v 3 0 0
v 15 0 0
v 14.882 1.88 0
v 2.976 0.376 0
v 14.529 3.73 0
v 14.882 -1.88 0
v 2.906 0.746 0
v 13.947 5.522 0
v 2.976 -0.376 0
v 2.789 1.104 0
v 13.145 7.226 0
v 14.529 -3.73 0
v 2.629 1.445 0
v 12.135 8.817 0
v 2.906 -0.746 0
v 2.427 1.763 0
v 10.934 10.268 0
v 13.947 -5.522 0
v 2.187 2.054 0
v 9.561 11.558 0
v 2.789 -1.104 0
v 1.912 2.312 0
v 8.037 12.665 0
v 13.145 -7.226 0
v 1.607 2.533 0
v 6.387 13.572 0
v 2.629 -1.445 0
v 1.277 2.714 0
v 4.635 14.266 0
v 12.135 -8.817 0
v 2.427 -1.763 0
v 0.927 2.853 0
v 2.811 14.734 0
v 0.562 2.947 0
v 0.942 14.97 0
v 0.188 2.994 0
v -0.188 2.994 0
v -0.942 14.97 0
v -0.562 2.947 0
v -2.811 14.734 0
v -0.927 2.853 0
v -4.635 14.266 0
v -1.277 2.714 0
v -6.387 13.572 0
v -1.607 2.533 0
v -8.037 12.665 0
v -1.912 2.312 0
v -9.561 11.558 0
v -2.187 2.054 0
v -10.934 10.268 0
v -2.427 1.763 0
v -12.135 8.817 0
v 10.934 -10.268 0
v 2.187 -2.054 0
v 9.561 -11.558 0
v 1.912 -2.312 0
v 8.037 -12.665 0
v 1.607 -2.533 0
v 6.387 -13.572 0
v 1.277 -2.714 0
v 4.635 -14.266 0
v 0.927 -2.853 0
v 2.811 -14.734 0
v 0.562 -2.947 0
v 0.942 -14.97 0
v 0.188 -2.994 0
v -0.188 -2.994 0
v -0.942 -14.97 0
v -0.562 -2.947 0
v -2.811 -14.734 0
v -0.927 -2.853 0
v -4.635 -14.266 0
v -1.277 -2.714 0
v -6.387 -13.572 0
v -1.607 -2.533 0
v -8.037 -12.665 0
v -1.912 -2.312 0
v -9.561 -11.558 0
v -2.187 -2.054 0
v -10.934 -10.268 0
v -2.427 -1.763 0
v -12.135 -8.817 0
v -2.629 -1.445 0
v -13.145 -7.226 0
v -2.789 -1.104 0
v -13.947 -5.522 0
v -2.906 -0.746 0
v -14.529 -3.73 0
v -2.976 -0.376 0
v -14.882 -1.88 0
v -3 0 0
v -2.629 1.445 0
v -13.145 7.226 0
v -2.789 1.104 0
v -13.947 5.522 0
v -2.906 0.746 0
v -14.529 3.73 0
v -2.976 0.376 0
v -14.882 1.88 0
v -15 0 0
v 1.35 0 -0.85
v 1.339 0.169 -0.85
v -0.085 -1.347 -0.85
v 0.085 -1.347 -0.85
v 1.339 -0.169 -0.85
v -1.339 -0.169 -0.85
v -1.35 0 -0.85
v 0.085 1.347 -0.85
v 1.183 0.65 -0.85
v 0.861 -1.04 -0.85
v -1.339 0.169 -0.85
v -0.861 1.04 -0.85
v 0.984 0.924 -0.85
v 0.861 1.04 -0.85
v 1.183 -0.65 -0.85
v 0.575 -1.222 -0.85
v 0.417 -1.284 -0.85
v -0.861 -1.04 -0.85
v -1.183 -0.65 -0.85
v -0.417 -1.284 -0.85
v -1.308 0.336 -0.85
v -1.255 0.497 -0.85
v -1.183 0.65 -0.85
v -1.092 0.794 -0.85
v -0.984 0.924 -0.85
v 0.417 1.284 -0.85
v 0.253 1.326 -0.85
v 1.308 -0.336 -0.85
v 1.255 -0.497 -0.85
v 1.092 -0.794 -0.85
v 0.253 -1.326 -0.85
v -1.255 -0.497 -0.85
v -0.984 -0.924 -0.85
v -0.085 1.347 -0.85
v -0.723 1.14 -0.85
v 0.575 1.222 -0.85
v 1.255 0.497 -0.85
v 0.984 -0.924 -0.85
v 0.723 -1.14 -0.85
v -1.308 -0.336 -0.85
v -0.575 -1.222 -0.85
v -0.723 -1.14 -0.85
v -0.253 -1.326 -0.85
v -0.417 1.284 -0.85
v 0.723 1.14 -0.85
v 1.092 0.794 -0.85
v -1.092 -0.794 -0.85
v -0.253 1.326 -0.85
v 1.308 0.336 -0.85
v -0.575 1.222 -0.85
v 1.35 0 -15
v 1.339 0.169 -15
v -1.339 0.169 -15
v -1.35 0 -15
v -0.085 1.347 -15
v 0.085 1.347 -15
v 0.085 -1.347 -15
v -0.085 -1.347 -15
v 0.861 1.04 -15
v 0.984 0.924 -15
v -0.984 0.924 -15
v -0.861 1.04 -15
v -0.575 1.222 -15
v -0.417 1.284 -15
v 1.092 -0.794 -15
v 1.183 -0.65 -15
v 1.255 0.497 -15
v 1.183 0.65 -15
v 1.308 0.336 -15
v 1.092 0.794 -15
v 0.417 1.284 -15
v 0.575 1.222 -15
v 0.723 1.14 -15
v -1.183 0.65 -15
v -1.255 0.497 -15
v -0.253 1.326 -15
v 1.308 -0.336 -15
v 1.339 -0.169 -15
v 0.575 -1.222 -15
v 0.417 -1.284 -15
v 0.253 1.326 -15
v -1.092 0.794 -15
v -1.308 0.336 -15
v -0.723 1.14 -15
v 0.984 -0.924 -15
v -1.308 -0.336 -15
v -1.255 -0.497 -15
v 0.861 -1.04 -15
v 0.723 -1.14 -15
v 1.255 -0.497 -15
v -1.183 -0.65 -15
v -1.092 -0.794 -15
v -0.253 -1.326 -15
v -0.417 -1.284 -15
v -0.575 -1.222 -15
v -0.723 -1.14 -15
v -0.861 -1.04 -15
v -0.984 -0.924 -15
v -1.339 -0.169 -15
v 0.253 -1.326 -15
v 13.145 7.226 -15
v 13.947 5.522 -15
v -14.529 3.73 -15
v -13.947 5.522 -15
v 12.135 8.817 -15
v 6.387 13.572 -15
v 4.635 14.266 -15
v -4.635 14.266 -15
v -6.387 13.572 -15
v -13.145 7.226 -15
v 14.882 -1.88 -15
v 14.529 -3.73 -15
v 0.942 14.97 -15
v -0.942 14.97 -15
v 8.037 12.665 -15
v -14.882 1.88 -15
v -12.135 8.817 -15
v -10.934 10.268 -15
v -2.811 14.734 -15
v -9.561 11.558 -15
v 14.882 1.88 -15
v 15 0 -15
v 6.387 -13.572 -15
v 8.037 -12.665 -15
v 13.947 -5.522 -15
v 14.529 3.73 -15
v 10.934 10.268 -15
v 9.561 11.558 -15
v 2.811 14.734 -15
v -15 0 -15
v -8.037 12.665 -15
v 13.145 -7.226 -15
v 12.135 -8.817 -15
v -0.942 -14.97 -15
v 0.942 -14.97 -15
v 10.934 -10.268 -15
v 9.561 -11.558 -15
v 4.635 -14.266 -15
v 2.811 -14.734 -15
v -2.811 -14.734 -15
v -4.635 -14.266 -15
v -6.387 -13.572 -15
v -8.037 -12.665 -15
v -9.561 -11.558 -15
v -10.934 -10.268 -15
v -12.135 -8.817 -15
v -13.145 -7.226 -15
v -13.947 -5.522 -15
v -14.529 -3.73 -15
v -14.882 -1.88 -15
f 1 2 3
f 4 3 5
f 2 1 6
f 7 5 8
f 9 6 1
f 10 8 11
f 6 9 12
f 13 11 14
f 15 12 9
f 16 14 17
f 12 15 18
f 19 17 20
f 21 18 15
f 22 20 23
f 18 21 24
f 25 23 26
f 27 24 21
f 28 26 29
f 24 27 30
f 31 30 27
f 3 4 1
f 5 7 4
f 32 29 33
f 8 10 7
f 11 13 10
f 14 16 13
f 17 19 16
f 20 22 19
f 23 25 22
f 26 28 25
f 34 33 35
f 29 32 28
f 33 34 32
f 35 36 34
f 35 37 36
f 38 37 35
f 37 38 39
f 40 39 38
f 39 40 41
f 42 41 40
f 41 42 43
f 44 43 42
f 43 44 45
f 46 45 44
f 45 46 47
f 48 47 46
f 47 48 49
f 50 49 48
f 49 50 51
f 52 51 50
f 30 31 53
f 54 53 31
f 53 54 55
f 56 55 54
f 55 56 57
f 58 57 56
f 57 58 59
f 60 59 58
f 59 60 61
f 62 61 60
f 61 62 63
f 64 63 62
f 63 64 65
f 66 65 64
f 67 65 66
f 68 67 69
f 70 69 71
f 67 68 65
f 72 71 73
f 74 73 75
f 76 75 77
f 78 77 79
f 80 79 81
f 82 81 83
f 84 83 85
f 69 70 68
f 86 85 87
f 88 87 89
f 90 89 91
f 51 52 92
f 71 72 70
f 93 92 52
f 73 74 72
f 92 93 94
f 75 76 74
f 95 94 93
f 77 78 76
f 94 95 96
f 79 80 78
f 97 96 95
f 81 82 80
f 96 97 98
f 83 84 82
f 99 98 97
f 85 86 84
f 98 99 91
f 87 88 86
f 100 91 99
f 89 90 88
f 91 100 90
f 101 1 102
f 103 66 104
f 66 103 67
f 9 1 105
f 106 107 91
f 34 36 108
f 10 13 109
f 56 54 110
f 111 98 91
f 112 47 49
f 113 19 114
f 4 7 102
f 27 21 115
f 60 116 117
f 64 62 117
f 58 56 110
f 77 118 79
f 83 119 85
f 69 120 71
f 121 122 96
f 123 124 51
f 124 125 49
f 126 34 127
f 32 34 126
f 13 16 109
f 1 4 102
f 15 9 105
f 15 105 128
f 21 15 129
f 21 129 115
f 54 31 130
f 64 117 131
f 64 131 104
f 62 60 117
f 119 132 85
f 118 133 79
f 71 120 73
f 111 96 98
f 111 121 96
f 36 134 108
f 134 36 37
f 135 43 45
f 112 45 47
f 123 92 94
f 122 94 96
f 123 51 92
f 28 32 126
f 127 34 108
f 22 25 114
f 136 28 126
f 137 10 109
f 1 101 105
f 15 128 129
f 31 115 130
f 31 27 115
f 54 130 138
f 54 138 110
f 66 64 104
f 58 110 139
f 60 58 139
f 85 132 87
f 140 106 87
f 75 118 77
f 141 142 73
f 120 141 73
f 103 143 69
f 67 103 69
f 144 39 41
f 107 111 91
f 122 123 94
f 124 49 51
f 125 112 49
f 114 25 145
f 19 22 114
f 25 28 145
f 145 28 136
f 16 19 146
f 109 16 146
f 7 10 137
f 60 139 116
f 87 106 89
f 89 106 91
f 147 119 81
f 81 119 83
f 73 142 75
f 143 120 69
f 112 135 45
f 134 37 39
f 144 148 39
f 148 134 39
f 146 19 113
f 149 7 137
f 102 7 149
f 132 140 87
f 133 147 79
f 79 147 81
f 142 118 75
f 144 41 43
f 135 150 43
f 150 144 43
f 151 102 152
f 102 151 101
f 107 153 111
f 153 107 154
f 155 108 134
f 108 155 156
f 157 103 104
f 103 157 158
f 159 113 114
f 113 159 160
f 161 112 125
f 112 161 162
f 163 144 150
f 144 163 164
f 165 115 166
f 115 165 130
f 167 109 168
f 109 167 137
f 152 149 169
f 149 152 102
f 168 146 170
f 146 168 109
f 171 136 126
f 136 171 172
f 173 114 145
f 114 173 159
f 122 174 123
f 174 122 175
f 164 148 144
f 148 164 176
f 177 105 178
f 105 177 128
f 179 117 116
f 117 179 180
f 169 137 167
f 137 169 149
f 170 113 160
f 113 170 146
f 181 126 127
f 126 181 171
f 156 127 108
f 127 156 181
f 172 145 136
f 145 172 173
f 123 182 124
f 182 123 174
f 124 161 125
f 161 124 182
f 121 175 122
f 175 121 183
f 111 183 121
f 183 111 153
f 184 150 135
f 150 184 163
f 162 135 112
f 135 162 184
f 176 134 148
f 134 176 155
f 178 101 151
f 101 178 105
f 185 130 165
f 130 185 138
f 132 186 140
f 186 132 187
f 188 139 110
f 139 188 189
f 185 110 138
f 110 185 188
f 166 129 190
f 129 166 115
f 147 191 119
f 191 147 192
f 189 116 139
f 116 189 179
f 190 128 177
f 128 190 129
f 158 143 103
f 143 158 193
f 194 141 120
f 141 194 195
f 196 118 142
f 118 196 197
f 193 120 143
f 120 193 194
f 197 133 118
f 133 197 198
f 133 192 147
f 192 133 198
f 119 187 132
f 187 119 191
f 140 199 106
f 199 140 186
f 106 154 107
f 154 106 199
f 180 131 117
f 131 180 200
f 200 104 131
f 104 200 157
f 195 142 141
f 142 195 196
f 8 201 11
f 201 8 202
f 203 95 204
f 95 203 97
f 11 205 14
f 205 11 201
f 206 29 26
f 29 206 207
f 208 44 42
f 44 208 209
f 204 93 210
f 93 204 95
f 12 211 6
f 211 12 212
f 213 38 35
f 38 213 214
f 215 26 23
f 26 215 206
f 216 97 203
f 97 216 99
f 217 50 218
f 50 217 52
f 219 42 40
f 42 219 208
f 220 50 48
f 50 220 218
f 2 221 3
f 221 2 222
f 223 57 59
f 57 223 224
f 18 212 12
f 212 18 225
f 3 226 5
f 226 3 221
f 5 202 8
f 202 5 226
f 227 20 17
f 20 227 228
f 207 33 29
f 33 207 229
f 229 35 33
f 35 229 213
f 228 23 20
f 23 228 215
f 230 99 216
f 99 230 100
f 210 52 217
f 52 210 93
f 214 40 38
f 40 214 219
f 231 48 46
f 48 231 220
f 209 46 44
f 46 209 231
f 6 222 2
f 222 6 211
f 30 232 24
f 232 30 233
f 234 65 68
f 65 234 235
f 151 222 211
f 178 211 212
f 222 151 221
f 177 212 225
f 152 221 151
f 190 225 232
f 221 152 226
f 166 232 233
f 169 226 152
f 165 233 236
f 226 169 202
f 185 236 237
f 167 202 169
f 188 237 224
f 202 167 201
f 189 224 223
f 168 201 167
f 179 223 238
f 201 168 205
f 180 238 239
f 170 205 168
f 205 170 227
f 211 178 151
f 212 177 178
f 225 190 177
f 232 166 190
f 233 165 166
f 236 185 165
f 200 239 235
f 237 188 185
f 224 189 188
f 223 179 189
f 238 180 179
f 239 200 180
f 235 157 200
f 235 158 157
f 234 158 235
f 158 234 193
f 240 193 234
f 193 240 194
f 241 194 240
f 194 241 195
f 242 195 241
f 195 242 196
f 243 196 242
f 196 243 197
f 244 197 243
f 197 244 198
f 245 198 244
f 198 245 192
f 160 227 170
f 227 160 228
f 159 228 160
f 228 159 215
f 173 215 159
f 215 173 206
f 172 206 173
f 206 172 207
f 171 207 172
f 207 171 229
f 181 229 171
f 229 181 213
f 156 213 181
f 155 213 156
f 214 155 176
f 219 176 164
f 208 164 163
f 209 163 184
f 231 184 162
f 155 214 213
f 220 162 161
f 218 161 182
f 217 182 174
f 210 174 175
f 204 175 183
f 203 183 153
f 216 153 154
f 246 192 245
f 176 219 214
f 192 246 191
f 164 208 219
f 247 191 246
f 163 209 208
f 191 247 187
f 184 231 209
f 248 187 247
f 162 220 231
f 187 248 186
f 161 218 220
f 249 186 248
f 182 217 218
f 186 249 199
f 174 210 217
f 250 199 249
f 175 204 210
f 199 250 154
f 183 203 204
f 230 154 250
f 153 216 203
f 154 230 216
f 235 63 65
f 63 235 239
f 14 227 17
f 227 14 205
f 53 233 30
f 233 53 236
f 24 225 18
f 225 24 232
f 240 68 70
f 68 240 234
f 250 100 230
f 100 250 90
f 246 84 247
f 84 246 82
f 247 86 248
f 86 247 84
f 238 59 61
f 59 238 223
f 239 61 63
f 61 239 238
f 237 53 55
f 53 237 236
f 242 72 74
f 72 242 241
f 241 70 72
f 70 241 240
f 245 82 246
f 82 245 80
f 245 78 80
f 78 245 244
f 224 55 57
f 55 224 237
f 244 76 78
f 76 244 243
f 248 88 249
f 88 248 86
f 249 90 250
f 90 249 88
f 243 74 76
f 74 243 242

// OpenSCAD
$fn = 50;

difference() {
	union() {
		translate(v = [0, 0, -15.0]) {
			cylinder(h = 15, r = 15.0);
		}
	}
	union() {
		translate(v = [0, 0, 0]) {
			rotate(a = [0, 0, 0]) {
				difference() {
					union() {
						translate(v = [0, 0, -18.0]) {
							cylinder(h = 18, r = 1.0);
						}
						translate(v = [0, 0, -0.85]) {
							cylinder(h = 0.85, r1 = 1.35, r2 = 3.0);
						}
						translate(v = [0, 0, -18.0]) {
							cylinder(h = 18, r = 1.35);
						}
						translate(v = [0, 0, -18.0]) {
							cylinder(h = 18, r = 1.0);
						}
					}
					union();
				}
			}
		}
	}
}
